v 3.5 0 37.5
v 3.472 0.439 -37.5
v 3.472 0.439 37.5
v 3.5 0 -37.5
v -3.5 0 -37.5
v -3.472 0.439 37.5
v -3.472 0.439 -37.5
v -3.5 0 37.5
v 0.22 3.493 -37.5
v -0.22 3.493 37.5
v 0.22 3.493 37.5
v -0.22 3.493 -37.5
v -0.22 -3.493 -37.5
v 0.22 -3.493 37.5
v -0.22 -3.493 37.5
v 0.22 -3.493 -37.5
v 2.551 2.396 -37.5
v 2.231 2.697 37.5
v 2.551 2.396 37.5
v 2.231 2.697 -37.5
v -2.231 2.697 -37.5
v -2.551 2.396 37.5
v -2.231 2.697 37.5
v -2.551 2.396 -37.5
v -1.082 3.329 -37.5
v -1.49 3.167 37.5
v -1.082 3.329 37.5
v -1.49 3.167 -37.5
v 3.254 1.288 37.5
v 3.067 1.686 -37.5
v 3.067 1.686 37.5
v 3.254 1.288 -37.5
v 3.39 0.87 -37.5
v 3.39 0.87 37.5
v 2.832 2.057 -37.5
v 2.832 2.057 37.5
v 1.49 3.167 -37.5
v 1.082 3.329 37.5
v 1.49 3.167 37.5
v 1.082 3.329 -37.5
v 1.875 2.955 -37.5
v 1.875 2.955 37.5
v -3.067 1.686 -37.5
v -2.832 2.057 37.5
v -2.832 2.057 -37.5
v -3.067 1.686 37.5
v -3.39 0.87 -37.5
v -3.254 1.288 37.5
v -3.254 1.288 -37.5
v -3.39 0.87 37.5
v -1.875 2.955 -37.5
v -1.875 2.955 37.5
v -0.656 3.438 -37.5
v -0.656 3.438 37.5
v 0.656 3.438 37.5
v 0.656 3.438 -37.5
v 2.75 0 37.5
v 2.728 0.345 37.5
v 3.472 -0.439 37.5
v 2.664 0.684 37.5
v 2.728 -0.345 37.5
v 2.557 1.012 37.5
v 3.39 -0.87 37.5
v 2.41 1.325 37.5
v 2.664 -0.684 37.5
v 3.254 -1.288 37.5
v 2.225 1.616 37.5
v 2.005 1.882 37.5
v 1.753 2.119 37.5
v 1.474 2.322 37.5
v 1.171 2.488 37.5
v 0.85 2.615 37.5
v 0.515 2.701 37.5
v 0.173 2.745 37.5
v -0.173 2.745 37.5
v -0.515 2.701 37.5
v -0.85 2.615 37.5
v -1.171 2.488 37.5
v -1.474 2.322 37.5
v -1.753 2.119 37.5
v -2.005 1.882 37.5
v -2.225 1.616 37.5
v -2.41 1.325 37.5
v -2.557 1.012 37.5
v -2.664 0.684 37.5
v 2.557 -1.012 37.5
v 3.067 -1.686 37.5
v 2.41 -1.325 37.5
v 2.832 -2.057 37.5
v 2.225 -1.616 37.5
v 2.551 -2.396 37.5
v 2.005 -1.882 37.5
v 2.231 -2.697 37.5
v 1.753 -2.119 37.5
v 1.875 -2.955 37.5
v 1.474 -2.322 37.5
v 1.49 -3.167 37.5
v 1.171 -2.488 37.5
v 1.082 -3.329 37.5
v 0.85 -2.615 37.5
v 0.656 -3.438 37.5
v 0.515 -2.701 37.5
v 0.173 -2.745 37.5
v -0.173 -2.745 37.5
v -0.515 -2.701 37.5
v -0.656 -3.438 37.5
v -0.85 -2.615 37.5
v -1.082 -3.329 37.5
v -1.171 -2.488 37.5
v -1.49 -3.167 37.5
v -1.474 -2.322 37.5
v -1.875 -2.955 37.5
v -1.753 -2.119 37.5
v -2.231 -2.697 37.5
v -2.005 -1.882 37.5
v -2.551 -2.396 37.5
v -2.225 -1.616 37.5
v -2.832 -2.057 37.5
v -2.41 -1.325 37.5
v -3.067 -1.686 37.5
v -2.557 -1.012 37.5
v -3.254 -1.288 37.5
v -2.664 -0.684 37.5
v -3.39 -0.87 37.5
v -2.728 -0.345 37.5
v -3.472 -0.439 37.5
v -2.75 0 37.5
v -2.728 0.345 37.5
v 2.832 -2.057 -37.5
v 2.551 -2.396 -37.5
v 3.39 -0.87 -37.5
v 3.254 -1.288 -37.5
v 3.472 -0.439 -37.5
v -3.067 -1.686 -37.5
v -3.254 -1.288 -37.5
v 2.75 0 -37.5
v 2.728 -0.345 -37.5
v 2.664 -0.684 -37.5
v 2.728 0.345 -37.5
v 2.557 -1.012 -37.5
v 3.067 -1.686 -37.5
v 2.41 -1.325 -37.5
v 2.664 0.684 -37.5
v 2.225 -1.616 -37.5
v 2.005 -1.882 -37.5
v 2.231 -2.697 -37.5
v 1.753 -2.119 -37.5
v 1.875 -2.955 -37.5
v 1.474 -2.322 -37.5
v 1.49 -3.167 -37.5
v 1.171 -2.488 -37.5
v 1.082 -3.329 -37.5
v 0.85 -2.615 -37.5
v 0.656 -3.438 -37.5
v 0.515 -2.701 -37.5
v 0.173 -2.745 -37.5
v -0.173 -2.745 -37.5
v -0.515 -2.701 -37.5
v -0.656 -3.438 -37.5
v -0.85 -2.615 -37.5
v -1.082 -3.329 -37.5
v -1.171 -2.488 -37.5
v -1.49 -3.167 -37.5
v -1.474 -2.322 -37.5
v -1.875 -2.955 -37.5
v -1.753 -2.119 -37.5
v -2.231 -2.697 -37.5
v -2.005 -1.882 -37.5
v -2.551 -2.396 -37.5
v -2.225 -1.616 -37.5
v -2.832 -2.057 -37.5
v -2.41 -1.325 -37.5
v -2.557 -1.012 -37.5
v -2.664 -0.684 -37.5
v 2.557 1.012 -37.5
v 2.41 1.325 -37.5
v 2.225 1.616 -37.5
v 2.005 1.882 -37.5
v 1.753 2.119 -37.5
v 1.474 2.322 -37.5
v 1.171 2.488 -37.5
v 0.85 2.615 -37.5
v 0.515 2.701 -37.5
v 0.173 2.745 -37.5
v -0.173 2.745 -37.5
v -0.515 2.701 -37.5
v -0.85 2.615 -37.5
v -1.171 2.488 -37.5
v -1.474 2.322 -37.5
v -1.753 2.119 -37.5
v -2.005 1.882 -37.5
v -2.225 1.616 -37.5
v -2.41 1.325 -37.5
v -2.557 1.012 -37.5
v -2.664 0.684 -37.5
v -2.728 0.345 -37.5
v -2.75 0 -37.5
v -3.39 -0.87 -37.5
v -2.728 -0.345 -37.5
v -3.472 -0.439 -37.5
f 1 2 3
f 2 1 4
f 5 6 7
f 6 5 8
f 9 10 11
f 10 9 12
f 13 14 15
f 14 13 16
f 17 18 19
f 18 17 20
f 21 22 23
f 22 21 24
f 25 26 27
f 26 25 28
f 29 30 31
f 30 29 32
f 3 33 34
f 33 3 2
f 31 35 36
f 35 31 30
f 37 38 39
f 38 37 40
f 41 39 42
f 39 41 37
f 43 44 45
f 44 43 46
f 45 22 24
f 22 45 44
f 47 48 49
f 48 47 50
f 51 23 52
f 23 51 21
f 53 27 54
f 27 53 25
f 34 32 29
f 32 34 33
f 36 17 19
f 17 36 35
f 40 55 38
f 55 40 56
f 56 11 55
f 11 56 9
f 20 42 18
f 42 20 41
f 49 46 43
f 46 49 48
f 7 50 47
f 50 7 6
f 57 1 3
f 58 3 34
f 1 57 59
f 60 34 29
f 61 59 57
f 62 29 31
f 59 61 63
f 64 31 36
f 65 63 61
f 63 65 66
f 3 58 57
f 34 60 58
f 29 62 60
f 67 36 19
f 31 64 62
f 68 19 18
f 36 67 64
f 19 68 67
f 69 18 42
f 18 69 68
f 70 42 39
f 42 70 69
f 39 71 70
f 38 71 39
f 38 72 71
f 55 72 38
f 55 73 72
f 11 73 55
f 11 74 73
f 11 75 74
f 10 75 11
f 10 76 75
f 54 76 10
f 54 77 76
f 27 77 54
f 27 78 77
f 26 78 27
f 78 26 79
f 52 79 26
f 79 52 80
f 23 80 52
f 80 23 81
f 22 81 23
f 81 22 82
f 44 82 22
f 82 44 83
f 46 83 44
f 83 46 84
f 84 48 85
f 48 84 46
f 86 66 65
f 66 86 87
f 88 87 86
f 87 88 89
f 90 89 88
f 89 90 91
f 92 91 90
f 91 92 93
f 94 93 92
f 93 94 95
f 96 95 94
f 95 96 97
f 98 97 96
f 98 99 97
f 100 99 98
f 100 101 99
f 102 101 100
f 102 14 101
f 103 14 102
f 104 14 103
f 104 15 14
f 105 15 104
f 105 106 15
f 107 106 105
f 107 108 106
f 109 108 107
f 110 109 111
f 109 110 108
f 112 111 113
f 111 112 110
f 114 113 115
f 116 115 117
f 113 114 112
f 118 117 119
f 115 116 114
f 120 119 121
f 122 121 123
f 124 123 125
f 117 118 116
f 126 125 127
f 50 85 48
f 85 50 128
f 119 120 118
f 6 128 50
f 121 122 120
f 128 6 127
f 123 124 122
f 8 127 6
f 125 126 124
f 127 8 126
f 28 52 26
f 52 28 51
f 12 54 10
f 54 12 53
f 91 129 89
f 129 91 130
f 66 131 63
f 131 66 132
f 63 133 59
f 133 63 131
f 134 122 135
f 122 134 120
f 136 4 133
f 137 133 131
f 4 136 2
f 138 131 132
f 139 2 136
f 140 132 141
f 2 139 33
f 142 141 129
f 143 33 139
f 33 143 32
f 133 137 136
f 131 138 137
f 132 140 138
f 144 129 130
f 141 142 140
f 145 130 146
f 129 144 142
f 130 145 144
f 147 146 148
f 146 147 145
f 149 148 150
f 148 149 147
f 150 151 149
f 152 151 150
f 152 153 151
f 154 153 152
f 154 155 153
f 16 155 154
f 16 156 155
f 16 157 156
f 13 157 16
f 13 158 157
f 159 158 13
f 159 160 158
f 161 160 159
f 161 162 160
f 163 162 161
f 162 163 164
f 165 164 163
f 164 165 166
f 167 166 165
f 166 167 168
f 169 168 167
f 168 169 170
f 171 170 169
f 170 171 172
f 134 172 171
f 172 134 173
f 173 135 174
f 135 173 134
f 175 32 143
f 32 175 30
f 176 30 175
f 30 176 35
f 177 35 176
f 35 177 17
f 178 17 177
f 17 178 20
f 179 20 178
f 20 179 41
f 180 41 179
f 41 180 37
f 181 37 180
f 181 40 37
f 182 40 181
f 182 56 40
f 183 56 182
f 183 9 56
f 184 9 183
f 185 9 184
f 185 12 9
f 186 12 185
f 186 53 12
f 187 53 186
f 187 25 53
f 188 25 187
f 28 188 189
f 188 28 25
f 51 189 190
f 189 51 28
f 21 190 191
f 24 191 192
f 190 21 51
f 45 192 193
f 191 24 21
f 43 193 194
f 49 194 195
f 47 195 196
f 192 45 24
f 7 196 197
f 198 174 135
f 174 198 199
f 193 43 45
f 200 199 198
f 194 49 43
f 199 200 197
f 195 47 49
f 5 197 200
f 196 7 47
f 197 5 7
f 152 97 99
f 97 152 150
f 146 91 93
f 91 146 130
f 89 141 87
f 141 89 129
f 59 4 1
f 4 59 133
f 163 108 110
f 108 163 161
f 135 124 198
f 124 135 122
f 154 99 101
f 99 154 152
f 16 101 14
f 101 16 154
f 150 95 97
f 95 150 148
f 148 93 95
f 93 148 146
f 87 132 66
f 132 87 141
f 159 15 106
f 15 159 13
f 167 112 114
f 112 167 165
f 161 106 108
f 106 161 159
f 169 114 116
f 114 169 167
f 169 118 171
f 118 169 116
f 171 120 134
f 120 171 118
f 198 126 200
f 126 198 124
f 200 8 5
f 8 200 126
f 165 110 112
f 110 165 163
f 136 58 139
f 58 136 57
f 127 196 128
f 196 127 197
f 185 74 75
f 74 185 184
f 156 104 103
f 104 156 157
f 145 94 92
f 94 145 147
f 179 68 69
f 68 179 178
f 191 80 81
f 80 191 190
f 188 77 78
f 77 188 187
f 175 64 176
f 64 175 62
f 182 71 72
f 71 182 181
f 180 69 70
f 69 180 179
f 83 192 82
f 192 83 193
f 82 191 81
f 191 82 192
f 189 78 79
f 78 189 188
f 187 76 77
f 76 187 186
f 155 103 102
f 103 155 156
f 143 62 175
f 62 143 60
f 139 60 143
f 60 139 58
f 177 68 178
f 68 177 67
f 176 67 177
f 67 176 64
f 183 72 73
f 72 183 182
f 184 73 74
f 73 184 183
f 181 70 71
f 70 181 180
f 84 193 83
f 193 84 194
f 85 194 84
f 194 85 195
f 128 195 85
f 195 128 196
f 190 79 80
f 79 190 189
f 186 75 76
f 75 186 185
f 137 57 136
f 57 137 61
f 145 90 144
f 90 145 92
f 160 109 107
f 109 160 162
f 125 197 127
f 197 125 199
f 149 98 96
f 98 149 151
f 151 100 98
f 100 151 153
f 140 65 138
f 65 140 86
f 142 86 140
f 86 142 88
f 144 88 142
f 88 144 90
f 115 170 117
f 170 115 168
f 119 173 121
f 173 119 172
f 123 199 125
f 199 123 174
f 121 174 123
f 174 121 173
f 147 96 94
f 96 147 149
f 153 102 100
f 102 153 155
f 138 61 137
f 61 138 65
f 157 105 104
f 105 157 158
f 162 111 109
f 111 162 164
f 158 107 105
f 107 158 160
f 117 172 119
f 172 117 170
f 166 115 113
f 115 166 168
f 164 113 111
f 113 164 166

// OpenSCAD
$fn = 50;


difference() {
	union() {
		translate(v = [0, 0, -37.5000000000]) {
			cylinder(h = 75, r = 3.5000000000);
		}
	}
	union() {
		translate(v = [0, 0, -100.0000000000]) {
			cylinder(h = 200, r = 2.7500000000);
		}
	}
}
